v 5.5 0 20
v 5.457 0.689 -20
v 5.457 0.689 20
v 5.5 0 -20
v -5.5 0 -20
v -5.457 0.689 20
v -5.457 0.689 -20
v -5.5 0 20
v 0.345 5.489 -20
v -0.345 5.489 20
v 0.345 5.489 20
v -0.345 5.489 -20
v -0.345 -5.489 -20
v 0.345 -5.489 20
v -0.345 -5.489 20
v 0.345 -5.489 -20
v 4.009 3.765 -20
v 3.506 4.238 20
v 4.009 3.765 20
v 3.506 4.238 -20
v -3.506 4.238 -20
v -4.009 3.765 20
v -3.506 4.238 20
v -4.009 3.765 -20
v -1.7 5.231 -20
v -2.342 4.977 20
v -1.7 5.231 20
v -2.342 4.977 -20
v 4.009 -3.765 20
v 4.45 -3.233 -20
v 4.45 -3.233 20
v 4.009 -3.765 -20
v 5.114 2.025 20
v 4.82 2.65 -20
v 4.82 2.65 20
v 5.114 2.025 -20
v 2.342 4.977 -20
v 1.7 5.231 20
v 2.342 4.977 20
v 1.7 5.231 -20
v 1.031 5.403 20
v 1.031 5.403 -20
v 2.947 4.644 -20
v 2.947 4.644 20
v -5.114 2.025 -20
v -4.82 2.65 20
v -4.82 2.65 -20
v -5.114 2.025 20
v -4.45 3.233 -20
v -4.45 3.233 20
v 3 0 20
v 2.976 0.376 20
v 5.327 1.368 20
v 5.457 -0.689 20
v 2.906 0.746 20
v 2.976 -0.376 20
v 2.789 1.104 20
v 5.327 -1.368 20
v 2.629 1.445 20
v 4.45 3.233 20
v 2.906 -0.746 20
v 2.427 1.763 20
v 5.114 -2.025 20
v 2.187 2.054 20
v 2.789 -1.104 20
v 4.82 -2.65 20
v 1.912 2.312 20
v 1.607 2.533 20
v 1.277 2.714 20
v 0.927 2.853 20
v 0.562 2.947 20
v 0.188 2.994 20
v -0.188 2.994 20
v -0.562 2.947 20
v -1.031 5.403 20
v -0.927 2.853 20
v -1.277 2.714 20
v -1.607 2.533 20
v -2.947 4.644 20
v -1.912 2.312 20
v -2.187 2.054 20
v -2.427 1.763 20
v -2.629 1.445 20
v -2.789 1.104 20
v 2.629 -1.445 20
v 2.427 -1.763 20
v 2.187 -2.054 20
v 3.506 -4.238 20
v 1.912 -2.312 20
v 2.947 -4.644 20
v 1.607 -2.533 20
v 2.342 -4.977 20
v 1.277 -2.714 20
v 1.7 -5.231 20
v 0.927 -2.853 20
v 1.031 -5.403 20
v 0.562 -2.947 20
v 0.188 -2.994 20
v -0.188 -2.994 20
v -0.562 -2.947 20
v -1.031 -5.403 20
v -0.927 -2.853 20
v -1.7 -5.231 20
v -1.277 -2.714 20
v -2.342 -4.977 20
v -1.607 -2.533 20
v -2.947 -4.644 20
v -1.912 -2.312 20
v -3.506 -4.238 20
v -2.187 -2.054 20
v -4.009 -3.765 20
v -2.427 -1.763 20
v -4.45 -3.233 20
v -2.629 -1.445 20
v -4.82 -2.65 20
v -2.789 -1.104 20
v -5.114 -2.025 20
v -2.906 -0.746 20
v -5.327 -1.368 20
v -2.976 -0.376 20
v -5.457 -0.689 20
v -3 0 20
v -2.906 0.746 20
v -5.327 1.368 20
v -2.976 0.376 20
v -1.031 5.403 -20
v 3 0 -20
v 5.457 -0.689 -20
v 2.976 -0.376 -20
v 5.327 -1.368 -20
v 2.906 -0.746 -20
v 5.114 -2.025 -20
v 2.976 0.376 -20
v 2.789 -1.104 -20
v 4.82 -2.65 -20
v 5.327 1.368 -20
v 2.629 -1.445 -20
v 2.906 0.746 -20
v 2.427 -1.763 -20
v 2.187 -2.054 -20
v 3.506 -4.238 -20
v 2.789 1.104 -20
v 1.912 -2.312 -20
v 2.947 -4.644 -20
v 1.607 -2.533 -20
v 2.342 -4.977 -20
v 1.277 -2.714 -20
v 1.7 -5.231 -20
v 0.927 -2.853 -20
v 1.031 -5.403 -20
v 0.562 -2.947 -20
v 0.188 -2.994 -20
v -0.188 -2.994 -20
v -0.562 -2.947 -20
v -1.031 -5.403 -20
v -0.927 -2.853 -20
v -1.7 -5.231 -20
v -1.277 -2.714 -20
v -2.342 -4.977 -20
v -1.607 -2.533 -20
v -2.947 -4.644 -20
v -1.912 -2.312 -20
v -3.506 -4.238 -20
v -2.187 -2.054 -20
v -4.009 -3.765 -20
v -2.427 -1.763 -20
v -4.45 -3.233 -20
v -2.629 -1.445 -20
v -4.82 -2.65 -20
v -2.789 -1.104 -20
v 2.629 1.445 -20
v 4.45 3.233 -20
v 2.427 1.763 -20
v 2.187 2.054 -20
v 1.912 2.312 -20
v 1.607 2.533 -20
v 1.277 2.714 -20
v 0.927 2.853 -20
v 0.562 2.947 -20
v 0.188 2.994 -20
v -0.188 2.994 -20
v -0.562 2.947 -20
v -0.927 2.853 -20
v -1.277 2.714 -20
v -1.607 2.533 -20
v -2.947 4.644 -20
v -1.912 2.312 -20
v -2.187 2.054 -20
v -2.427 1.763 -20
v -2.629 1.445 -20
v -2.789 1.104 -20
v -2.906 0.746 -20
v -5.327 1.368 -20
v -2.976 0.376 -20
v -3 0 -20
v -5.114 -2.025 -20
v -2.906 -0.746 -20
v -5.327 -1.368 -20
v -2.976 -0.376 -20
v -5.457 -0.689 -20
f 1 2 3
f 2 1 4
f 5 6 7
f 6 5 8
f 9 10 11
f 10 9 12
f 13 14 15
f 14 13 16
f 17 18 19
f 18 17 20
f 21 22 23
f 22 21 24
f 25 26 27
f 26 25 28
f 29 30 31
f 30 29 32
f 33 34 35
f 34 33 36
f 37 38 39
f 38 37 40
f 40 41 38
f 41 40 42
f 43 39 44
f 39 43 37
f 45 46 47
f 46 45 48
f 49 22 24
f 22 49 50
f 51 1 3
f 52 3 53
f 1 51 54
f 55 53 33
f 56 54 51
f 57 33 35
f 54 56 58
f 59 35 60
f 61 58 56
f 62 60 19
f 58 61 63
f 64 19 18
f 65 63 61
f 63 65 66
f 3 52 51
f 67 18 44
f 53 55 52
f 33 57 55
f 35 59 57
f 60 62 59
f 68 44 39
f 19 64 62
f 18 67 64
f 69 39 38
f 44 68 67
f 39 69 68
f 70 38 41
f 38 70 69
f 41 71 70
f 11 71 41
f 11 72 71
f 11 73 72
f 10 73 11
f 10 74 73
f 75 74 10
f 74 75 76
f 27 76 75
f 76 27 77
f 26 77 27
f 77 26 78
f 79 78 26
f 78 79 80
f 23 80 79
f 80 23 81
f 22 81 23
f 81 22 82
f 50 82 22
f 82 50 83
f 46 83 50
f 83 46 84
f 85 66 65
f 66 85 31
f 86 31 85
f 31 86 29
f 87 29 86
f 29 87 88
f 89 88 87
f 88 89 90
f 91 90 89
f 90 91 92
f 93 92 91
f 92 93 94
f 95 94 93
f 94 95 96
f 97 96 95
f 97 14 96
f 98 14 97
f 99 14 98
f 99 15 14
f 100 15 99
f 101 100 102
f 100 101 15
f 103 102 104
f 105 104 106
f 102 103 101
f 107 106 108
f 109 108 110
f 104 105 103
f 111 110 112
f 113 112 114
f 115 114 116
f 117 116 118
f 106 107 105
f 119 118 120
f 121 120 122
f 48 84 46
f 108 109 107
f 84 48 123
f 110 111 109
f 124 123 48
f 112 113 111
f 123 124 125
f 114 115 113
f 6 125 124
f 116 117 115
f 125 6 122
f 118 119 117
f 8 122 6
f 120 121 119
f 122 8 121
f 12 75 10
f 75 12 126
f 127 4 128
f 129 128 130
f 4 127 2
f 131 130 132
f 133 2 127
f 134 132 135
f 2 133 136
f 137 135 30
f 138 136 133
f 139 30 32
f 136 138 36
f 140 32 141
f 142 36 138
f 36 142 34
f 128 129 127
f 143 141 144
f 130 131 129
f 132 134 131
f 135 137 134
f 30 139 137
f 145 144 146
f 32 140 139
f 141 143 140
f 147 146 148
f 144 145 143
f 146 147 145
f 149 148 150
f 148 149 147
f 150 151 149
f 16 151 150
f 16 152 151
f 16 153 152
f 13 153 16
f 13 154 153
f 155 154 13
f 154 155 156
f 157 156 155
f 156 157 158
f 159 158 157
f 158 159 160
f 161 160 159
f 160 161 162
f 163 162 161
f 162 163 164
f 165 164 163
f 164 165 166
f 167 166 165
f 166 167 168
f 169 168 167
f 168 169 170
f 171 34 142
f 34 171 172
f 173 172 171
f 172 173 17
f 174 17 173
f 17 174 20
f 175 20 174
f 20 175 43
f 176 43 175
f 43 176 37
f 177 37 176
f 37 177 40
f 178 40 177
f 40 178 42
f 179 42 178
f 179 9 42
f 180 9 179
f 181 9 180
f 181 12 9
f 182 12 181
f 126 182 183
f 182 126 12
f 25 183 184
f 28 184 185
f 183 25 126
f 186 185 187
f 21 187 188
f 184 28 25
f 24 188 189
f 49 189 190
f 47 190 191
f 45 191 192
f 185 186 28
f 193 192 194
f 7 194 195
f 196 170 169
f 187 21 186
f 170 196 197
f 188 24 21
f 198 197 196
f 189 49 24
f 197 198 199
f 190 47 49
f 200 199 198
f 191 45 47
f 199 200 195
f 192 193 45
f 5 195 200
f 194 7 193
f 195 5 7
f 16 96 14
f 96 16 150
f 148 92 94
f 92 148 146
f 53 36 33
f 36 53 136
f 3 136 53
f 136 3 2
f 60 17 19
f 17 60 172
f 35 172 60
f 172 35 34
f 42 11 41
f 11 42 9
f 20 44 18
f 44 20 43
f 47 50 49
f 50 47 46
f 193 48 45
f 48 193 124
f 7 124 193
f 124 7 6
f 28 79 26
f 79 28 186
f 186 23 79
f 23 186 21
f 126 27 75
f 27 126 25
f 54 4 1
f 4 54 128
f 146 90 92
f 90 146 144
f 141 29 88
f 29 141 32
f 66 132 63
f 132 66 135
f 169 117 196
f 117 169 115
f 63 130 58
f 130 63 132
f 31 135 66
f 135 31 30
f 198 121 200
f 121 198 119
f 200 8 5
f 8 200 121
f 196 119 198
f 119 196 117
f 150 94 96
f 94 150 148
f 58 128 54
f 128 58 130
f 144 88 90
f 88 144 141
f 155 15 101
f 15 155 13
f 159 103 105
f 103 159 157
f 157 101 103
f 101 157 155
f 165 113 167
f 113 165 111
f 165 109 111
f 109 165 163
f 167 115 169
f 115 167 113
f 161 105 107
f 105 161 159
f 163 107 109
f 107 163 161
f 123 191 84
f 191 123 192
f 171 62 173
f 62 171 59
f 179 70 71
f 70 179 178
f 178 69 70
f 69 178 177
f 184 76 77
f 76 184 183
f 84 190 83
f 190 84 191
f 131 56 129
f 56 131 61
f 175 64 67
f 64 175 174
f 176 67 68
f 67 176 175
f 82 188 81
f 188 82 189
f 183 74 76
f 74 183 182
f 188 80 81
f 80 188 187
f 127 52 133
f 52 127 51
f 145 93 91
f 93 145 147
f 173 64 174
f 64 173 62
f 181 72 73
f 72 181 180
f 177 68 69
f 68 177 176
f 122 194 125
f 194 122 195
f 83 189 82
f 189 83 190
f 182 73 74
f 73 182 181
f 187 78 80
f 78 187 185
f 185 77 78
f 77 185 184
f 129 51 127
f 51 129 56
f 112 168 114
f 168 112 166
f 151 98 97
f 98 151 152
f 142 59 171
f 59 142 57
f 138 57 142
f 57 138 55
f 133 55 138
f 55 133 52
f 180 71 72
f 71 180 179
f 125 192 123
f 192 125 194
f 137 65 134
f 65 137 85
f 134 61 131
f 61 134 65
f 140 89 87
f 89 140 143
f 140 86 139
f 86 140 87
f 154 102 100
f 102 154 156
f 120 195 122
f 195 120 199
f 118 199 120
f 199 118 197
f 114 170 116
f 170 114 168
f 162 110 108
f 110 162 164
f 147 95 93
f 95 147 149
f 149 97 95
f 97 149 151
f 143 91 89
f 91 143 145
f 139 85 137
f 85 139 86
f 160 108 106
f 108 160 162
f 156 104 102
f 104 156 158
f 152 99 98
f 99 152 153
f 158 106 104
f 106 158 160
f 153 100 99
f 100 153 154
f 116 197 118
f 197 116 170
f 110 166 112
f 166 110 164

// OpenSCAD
$fn = 50;


difference() {
	union() {
		translate(v = [0, 0, -20.0000000000]) {
			cylinder(h = 40, r = 5.5000000000);
		}
	}
	union() {
		translate(v = [0, 0, -100.0000000000]) {
			cylinder(h = 200, r = 3);
		}
	}
}
